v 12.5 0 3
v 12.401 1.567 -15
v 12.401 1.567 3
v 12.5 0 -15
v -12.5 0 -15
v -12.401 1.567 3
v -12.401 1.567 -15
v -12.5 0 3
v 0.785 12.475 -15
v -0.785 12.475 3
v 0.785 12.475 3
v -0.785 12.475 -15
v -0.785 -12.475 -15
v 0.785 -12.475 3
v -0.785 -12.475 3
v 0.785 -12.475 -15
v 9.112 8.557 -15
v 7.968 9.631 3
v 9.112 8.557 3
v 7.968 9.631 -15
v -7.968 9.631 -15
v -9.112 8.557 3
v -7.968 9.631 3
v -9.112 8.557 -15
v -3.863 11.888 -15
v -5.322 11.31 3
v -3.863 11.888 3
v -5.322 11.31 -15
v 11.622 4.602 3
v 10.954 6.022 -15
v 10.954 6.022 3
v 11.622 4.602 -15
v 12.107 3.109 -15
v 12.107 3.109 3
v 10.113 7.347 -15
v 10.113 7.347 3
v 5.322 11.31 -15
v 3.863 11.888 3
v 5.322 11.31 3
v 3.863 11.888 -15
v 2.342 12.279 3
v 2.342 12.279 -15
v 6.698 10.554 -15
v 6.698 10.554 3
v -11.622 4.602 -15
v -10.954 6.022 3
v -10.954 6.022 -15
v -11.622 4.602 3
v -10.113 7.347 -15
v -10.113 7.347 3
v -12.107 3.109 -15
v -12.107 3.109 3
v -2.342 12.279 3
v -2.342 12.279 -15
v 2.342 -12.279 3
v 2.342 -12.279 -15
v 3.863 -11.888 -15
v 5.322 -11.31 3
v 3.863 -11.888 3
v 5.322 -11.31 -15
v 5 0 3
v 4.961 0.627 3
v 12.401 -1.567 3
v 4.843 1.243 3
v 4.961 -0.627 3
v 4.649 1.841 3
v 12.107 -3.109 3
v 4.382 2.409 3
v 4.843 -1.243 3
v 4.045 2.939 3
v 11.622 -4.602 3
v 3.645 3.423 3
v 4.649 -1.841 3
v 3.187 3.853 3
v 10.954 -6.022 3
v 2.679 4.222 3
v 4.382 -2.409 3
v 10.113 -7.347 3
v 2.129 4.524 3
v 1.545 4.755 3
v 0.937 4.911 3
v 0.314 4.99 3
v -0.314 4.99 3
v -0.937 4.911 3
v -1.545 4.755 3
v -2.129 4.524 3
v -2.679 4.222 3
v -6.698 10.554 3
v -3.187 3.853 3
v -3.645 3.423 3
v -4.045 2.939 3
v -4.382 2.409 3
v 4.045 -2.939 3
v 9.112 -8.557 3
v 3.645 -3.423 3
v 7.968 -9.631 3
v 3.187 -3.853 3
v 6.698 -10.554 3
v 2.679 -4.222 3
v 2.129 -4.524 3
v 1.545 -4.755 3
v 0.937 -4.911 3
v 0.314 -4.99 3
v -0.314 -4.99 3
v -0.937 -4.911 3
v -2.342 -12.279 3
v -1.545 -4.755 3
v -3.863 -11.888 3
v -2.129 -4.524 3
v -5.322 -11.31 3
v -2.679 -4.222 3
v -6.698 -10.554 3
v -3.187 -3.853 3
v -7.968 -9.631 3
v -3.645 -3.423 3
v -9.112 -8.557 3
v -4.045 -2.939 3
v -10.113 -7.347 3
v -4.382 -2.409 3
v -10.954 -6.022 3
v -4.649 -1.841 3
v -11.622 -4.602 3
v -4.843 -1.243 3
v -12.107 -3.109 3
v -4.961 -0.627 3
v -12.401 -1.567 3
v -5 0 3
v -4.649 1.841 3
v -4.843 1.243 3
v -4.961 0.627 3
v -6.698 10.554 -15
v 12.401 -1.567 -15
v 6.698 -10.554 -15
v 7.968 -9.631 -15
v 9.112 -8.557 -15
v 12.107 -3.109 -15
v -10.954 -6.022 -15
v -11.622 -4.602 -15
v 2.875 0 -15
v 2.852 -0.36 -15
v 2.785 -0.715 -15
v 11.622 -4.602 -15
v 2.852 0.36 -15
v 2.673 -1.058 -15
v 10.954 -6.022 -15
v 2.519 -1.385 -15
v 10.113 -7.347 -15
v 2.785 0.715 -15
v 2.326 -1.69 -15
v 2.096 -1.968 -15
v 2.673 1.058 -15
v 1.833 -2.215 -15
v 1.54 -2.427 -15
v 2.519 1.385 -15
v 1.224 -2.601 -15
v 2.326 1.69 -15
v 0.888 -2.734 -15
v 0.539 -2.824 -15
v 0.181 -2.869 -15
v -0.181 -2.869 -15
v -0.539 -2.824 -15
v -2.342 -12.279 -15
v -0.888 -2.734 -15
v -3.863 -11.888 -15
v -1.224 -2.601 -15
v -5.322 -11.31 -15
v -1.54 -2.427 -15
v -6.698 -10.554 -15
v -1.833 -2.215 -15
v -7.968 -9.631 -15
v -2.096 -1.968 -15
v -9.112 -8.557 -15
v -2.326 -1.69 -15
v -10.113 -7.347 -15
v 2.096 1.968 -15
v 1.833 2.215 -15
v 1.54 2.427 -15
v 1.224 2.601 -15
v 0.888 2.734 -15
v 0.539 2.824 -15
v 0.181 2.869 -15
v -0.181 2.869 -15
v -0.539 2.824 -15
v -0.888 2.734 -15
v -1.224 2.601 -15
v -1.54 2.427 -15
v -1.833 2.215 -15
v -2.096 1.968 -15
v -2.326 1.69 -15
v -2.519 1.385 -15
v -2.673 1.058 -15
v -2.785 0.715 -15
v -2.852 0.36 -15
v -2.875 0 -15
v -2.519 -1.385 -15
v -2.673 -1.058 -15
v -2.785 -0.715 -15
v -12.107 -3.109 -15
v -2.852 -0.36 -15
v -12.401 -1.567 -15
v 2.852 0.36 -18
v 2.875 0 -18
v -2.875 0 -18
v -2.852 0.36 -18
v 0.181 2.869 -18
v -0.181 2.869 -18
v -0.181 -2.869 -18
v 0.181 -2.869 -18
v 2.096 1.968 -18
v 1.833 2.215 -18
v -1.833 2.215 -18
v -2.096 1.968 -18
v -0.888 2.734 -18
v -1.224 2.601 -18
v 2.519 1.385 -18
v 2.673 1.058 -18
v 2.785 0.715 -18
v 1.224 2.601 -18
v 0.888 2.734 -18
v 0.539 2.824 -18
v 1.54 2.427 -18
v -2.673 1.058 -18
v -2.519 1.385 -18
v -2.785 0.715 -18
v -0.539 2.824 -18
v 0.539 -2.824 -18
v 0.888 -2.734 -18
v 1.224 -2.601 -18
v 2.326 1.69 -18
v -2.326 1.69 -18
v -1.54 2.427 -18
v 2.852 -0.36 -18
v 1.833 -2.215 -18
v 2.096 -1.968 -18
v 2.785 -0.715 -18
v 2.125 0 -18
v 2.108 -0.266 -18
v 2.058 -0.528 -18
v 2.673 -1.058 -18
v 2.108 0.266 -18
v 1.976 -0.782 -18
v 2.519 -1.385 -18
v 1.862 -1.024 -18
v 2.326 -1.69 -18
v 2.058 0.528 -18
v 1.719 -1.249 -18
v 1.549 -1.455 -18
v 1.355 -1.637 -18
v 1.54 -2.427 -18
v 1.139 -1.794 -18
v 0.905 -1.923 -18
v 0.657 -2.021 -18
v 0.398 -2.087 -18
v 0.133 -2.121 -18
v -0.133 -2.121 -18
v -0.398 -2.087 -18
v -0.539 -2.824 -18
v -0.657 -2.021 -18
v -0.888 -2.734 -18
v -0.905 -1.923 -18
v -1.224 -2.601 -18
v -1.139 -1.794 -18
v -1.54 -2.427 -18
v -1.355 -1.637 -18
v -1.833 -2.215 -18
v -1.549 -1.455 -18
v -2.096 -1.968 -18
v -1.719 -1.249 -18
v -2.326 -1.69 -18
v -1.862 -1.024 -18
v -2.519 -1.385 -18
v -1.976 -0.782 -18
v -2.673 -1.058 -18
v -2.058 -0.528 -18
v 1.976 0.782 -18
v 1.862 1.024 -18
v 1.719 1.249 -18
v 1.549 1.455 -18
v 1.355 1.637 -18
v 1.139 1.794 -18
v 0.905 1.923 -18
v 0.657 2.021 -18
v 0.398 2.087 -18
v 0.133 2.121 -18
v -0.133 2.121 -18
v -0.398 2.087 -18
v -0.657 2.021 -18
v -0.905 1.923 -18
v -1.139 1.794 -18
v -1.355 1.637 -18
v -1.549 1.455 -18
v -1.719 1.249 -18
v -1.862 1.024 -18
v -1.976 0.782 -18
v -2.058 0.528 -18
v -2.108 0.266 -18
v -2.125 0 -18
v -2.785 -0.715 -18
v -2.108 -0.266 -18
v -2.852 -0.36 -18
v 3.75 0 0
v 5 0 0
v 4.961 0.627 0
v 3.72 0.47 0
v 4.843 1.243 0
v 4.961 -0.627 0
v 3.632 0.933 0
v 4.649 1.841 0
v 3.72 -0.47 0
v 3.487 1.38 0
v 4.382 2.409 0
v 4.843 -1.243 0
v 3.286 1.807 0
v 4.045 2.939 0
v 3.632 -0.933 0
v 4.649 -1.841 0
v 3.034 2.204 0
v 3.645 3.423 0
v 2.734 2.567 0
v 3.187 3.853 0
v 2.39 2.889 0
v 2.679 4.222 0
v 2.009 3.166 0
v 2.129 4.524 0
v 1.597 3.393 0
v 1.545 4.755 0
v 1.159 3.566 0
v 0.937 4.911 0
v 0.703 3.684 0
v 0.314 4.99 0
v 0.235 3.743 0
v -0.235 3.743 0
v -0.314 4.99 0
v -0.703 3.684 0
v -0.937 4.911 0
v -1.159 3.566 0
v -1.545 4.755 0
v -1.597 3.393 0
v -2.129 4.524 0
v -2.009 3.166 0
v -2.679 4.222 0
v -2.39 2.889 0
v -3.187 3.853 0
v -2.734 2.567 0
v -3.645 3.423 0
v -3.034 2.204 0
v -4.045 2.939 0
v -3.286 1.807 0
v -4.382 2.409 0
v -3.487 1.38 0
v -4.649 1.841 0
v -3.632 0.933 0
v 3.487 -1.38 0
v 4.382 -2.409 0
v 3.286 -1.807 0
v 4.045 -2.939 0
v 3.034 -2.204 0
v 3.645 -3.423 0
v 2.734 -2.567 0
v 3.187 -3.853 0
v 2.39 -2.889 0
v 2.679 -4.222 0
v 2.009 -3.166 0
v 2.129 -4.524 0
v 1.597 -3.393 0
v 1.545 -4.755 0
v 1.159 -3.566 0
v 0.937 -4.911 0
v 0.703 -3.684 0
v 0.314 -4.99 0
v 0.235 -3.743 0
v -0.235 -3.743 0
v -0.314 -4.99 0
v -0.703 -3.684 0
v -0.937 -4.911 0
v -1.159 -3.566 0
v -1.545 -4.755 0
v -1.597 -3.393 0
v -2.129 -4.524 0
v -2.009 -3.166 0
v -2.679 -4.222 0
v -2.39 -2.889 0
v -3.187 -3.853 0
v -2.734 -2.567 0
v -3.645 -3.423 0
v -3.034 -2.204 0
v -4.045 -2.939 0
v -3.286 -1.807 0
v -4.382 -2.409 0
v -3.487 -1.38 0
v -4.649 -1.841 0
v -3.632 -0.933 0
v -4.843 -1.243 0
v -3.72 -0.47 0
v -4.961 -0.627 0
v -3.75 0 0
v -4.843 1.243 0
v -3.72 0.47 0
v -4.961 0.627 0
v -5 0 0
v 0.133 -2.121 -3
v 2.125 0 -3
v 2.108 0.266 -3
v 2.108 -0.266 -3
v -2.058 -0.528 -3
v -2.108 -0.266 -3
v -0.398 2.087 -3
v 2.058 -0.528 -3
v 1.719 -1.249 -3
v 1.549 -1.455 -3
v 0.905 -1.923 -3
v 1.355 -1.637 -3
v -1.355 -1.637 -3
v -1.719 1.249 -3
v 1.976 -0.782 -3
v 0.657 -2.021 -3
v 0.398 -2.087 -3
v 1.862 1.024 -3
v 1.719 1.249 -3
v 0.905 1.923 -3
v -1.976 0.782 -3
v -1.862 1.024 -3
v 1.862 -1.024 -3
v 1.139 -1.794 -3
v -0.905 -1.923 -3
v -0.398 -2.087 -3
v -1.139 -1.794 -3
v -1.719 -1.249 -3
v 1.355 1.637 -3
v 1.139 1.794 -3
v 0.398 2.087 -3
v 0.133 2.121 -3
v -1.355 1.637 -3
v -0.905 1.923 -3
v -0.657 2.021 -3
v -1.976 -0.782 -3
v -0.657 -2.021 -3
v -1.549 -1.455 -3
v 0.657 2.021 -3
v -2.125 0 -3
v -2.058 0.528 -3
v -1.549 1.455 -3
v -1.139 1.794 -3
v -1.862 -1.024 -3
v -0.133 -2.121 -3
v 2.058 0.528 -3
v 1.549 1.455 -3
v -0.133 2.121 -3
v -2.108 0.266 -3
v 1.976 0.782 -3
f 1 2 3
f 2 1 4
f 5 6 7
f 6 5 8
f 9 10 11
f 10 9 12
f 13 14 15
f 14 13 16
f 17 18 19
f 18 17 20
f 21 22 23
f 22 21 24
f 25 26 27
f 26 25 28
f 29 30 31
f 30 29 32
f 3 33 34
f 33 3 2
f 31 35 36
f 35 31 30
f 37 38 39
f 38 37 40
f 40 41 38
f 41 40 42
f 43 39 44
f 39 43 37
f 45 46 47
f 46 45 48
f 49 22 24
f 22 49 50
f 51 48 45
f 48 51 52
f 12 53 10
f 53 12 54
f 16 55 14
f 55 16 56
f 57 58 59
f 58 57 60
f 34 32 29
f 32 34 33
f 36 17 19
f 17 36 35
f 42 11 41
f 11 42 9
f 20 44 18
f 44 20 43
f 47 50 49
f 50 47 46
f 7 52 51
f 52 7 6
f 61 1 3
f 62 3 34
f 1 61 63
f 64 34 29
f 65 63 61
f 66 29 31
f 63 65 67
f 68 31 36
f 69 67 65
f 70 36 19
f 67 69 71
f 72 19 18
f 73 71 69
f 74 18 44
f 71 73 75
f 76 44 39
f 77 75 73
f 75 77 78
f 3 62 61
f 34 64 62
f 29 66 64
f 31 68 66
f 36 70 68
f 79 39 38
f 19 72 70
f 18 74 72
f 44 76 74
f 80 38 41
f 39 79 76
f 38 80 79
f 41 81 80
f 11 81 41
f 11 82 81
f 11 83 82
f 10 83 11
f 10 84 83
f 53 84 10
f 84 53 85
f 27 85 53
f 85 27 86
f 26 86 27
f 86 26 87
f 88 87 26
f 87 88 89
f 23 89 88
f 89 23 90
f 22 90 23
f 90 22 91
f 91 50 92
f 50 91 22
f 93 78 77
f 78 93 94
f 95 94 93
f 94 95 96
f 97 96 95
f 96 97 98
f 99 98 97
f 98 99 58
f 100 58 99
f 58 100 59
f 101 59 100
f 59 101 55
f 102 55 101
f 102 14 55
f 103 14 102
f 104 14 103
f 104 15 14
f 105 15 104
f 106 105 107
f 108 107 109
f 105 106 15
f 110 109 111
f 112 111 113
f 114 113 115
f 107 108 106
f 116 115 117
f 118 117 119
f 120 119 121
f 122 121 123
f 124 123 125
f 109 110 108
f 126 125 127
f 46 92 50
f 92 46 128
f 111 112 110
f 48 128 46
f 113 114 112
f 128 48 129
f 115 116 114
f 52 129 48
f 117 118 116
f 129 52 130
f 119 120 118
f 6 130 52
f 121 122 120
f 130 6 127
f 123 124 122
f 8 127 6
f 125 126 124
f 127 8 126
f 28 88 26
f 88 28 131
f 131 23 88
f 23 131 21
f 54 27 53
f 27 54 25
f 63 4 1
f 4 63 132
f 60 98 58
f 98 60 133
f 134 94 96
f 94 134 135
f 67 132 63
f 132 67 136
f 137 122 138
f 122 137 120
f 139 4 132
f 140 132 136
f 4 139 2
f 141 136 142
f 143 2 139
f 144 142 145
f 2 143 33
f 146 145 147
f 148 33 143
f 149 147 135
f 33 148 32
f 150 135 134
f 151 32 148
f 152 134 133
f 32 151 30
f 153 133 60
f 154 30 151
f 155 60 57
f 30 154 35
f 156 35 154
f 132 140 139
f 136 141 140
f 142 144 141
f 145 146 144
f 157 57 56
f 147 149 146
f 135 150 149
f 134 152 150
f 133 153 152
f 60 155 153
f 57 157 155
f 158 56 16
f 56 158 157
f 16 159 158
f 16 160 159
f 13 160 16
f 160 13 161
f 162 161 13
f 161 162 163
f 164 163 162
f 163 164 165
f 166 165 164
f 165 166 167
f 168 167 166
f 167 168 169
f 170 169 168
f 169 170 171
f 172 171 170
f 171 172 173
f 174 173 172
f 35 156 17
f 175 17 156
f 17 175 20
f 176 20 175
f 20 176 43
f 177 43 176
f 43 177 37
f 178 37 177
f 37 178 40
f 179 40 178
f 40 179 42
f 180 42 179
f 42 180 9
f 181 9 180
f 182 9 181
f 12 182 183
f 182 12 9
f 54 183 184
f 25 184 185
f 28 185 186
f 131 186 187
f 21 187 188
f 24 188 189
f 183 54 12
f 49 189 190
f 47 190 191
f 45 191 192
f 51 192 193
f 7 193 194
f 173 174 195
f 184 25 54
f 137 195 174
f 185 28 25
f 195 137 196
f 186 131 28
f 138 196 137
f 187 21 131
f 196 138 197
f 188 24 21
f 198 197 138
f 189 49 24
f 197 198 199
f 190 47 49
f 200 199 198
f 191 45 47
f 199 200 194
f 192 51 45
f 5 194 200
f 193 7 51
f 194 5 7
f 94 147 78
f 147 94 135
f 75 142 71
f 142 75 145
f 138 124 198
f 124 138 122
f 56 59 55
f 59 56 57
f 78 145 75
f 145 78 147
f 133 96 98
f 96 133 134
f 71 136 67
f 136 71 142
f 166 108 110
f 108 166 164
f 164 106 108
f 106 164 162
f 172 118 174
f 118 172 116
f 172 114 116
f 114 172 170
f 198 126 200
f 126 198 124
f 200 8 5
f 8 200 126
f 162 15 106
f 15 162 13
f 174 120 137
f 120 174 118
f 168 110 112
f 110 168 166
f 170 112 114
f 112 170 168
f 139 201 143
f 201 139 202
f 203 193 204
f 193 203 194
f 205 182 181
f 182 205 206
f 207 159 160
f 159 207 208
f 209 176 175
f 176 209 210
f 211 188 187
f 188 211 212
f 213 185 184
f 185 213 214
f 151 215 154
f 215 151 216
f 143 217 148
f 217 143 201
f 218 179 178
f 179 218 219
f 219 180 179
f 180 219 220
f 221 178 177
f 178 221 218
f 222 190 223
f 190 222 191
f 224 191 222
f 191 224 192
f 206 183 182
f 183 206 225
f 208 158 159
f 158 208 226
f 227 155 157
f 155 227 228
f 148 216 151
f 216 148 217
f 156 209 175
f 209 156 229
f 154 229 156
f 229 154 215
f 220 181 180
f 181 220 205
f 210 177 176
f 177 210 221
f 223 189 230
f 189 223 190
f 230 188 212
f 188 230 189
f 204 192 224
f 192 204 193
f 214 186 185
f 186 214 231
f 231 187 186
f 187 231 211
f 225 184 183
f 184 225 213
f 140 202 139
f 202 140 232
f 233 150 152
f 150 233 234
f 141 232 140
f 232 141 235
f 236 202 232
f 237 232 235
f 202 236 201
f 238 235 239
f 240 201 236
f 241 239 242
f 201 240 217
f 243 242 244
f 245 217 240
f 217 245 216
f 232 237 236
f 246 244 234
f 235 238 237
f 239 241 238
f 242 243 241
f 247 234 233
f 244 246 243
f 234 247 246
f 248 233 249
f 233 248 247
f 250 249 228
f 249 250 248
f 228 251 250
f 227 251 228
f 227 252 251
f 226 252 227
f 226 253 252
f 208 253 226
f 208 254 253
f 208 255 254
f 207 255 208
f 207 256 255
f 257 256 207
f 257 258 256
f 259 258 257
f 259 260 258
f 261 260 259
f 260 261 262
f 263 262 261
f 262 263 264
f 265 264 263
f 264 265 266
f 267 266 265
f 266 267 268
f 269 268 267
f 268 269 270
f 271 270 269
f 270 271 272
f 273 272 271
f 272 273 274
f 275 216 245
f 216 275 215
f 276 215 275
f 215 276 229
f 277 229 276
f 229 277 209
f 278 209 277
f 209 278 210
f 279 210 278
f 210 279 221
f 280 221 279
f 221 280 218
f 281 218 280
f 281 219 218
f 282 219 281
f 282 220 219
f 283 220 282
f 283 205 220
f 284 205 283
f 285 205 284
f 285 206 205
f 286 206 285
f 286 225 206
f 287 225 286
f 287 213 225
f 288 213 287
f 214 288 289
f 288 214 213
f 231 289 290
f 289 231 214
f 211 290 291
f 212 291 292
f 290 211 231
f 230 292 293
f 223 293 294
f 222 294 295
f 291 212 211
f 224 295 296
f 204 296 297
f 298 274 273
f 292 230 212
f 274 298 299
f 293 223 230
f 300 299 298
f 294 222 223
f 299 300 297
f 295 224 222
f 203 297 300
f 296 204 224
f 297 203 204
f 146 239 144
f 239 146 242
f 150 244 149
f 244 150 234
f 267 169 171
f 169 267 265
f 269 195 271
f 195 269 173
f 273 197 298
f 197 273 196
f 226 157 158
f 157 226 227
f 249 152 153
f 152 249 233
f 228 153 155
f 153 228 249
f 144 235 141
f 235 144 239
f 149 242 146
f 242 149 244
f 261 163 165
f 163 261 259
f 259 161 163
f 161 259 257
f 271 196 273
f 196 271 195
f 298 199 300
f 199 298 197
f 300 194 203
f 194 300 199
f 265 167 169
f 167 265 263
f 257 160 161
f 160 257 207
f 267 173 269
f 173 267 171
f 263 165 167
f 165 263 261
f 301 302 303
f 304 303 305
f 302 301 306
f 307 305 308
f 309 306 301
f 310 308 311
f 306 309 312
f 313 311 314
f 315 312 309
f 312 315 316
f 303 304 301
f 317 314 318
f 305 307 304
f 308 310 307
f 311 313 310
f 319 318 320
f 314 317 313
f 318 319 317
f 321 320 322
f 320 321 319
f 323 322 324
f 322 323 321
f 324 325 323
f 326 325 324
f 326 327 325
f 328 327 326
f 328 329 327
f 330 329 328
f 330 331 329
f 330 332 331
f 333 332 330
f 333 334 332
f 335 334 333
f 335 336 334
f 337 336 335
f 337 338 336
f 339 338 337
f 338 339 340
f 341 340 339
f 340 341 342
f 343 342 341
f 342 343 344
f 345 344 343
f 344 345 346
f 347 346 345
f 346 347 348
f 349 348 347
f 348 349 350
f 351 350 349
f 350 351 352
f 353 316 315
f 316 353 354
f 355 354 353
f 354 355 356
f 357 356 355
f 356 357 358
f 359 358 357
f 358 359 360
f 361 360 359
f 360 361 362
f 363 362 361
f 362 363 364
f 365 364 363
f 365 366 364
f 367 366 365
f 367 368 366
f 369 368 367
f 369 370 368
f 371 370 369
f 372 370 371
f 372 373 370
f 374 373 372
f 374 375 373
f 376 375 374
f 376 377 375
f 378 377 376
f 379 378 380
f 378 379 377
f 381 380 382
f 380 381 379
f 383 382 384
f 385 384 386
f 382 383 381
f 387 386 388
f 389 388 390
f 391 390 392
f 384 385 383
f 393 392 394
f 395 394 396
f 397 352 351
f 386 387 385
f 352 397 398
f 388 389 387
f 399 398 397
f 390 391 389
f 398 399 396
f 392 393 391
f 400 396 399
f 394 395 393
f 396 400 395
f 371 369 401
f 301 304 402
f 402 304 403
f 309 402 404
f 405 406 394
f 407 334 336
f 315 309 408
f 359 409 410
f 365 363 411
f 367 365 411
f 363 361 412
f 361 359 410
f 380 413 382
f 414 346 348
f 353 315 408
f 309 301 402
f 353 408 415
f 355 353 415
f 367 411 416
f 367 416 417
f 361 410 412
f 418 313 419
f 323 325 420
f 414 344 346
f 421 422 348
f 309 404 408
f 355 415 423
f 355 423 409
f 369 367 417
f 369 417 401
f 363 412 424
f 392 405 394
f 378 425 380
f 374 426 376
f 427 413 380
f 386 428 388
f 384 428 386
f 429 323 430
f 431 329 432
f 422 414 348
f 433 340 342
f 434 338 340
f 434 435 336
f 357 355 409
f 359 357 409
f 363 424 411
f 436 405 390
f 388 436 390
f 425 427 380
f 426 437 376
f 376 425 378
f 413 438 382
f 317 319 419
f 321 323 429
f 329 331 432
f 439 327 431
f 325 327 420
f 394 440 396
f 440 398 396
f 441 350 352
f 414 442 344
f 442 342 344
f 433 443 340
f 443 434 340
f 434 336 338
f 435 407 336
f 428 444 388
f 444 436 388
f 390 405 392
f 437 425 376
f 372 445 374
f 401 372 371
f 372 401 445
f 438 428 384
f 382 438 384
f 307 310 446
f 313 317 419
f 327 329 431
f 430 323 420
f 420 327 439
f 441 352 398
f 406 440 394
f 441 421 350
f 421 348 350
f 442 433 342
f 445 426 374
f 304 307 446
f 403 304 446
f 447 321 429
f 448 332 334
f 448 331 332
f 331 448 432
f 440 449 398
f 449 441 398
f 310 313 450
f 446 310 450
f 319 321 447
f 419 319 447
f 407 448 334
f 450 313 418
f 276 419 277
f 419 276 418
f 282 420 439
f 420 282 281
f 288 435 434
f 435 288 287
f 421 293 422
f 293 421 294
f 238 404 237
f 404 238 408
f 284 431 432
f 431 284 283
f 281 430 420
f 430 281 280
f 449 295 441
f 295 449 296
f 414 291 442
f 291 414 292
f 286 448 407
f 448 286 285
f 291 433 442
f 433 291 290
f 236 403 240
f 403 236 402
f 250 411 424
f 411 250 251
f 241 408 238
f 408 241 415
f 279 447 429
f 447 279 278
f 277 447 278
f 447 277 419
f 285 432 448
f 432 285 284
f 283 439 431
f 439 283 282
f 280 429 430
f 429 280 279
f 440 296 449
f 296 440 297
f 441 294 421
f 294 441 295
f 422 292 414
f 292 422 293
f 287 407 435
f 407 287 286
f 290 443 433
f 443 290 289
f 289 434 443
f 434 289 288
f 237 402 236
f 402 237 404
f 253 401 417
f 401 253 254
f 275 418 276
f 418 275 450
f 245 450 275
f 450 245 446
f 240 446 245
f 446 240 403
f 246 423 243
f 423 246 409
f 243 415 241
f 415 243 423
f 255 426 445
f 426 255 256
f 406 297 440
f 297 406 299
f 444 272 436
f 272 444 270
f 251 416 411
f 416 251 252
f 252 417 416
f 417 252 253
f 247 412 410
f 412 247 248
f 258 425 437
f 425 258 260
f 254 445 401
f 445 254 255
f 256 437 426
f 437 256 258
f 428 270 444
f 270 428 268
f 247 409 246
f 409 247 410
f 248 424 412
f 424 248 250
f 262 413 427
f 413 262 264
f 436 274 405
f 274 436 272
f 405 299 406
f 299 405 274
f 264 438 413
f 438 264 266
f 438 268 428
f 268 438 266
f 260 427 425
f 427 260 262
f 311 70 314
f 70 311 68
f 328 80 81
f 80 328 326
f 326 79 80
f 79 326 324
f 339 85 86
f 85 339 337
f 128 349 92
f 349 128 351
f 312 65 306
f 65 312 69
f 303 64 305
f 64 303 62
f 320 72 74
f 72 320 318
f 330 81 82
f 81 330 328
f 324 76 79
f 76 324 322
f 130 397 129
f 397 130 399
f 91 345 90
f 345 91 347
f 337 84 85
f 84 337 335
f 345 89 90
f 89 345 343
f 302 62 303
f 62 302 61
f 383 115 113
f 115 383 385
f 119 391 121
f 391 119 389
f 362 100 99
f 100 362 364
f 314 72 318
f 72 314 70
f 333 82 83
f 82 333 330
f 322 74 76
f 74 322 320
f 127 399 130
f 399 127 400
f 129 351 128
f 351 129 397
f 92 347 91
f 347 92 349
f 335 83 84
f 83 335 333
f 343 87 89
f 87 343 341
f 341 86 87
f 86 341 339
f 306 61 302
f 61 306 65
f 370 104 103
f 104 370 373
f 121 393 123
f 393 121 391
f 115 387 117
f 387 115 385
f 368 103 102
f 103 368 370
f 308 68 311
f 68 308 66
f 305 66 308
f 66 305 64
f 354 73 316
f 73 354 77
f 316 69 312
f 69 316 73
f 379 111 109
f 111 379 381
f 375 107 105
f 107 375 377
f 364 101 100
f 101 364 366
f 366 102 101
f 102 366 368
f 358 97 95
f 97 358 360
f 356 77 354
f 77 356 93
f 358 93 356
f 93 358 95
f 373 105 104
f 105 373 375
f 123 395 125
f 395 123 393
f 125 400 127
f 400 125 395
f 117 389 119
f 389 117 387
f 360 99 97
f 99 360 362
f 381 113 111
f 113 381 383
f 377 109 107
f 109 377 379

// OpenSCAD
$fn = 50;

difference() {
	union() {
		translate(v = [0, 0, -15.0]) {
			cylinder(h = 18, r = 12.5);
		}
		#translate(v = [0, 0, -18.0]) {
			cylinder(h = 18, r = 2.875);
		}
	}
	union() {
		translate(v = [0, 0, 0]) {
			rotate(a = [0, 0, 0]) {
				difference() {
					union() {
						translate(v = [0, 0, -18.0]) {
							cylinder(h = 18, r = 2.0);
						}
						translate(v = [0, 0, -3]) {
							cylinder(h = 3, r1 = 2.125, r2 = 3.75);
						}
						translate(v = [0, 0, -18.0]) {
							cylinder(h = 18, r = 2.125);
						}
						translate(v = [0, 0, -18.0]) {
							cylinder(h = 18, r = 2.0);
						}
					}
					union();
				}
			}
		}
		#cylinder(h = 3, r = 5.0);
	}
}
